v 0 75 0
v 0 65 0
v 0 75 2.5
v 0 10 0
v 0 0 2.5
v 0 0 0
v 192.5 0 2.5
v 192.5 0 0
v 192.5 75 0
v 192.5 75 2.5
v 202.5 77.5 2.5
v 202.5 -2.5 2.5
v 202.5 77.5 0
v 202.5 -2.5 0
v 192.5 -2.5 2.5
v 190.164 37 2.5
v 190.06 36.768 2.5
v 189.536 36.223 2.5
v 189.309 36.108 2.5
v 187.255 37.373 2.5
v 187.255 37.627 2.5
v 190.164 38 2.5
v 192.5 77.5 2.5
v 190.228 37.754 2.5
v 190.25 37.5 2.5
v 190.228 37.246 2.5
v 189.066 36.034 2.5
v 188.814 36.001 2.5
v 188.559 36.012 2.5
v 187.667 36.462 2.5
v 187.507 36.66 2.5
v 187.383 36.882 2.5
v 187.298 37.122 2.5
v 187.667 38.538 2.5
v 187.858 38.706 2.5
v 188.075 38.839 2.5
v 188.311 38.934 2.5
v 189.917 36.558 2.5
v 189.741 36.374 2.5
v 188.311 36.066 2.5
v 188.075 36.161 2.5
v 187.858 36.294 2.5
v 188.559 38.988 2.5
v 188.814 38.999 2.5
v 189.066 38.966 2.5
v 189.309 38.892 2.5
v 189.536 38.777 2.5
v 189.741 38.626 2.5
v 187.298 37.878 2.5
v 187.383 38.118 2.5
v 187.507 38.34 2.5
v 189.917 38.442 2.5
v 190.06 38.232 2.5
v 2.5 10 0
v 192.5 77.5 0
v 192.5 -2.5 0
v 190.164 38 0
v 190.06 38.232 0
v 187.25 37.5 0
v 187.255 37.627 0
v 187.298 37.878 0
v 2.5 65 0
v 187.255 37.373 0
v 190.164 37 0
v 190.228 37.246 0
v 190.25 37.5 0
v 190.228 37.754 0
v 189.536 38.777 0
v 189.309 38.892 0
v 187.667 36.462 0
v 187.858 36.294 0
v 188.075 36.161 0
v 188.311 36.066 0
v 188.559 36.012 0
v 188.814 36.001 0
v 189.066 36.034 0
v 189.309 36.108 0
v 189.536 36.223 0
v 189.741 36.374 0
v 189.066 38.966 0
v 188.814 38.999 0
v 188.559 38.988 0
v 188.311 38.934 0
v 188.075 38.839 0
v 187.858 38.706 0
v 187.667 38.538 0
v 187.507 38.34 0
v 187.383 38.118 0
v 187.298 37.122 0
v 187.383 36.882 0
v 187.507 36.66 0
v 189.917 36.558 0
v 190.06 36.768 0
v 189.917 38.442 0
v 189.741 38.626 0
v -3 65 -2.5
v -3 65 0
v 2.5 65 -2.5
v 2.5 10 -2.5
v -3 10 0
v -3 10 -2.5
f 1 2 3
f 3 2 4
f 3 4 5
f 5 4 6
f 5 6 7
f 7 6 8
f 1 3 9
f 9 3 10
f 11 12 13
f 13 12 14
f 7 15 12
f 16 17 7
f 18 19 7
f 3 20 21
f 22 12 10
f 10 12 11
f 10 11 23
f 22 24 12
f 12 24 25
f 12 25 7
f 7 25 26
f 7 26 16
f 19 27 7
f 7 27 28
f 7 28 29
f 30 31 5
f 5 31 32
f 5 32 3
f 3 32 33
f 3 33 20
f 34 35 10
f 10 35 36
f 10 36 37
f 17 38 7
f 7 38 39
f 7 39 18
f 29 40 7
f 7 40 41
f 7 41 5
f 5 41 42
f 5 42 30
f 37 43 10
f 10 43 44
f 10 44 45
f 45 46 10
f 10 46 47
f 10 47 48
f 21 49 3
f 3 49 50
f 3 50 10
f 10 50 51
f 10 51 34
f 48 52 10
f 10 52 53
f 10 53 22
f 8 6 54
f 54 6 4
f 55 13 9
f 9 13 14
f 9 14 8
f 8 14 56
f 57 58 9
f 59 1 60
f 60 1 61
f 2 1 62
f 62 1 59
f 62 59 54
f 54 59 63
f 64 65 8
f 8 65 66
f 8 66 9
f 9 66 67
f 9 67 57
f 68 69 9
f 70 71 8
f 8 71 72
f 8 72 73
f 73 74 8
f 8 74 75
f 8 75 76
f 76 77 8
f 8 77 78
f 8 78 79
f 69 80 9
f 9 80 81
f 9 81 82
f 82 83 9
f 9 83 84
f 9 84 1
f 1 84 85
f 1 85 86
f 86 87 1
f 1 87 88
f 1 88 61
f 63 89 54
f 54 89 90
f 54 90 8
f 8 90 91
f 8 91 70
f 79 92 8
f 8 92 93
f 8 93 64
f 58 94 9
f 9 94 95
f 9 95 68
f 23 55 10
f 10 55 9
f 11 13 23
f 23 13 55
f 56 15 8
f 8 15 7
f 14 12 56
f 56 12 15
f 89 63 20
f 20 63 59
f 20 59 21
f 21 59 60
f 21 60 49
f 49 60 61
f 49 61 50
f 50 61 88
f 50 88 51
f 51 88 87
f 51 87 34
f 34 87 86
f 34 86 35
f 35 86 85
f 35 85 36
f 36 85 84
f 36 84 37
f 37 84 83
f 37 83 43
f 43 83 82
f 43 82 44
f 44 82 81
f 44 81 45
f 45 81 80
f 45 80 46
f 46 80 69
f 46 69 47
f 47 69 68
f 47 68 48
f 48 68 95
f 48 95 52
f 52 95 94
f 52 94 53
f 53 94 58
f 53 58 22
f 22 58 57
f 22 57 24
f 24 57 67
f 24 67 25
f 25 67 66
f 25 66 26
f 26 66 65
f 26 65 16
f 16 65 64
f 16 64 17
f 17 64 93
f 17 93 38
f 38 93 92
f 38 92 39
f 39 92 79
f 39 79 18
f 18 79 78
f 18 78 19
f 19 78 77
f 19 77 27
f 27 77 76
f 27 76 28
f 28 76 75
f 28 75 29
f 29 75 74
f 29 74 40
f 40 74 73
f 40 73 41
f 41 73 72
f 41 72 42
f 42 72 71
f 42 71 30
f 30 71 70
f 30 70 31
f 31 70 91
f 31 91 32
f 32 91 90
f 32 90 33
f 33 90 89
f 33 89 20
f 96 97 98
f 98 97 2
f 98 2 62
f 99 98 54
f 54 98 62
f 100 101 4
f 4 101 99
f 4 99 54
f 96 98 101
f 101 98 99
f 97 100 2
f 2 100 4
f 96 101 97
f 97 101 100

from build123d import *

# Parameters (mm, degrees)
SKETCH1_W            = 202.5
SKETCH1_H            = 75
BOSS_EXTRUDE7_DEPTH  = 2.5
SKETCH9_W            = 10
SKETCH9_H            = 2.5
BOSS_EXTRUDE8_DEPTH  = 2.5
SKETCH10_W           = 10
SKETCH10_H           = 2.5
BOSS_EXTRUDE9_DEPTH  = 2.5
SKETCH11_R           = 1.5
CUT_EXTRUDE3_DEPTH   = 2.5
SKETCH12_W           = 2.5
SKETCH12_H           = 55
BOSS_EXTRUDE10_DEPTH = 2.5
SKETCH13_W           = 2.5
SKETCH13_H           = 55
BOSS_EXTRUDE11_DEPTH = 3


with BuildPart() as part:
    # Sketch1 → Boss-Extrude7 (new body)
    with BuildSketch(Plane.XY):
        with Locations((101.25, 37.5)):
            Rectangle(SKETCH1_W, SKETCH1_H)
    extrude(amount=BOSS_EXTRUDE7_DEPTH)

    # Sketch9 → Boss-Extrude8 (add)
    with BuildSketch(Plane(origin=(0, 75, 0), x_dir=(1, 0, 0), z_dir=(0, 1, 0))):
        with Locations((197.5, -1.25)):
            Rectangle(SKETCH9_W, SKETCH9_H)
    extrude(amount=BOSS_EXTRUDE8_DEPTH)

    # Sketch10 → Boss-Extrude9 (add)
    with BuildSketch(Plane.XZ):
        with Locations((197.5, 1.25)):
            Rectangle(SKETCH10_W, SKETCH10_H)
    extrude(amount=BOSS_EXTRUDE9_DEPTH)

    # Sketch11 → Cut-Extrude3 (cut)
    with BuildSketch(Plane.XY.offset(2.5)):
        with Locations((188.75, 37.5)):
            Circle(SKETCH11_R)
    extrude(amount=-CUT_EXTRUDE3_DEPTH, mode=Mode.SUBTRACT)

    # Sketch12 → Boss-Extrude10 (add)
    with BuildSketch(Plane(origin=(0, 0, 0), x_dir=(-1, 0, 0), z_dir=(0, 0, -1))):
        with Locations((-1.25, 37.5)):
            Rectangle(SKETCH12_W, SKETCH12_H)
    extrude(amount=BOSS_EXTRUDE10_DEPTH)

    # Sketch13 → Boss-Extrude11 (add)
    with BuildSketch(Plane.ZY):
        with Locations((-1.25, 37.5)):
            Rectangle(SKETCH13_W, SKETCH13_H)
    extrude(amount=BOSS_EXTRUDE11_DEPTH)


solid = part.part
